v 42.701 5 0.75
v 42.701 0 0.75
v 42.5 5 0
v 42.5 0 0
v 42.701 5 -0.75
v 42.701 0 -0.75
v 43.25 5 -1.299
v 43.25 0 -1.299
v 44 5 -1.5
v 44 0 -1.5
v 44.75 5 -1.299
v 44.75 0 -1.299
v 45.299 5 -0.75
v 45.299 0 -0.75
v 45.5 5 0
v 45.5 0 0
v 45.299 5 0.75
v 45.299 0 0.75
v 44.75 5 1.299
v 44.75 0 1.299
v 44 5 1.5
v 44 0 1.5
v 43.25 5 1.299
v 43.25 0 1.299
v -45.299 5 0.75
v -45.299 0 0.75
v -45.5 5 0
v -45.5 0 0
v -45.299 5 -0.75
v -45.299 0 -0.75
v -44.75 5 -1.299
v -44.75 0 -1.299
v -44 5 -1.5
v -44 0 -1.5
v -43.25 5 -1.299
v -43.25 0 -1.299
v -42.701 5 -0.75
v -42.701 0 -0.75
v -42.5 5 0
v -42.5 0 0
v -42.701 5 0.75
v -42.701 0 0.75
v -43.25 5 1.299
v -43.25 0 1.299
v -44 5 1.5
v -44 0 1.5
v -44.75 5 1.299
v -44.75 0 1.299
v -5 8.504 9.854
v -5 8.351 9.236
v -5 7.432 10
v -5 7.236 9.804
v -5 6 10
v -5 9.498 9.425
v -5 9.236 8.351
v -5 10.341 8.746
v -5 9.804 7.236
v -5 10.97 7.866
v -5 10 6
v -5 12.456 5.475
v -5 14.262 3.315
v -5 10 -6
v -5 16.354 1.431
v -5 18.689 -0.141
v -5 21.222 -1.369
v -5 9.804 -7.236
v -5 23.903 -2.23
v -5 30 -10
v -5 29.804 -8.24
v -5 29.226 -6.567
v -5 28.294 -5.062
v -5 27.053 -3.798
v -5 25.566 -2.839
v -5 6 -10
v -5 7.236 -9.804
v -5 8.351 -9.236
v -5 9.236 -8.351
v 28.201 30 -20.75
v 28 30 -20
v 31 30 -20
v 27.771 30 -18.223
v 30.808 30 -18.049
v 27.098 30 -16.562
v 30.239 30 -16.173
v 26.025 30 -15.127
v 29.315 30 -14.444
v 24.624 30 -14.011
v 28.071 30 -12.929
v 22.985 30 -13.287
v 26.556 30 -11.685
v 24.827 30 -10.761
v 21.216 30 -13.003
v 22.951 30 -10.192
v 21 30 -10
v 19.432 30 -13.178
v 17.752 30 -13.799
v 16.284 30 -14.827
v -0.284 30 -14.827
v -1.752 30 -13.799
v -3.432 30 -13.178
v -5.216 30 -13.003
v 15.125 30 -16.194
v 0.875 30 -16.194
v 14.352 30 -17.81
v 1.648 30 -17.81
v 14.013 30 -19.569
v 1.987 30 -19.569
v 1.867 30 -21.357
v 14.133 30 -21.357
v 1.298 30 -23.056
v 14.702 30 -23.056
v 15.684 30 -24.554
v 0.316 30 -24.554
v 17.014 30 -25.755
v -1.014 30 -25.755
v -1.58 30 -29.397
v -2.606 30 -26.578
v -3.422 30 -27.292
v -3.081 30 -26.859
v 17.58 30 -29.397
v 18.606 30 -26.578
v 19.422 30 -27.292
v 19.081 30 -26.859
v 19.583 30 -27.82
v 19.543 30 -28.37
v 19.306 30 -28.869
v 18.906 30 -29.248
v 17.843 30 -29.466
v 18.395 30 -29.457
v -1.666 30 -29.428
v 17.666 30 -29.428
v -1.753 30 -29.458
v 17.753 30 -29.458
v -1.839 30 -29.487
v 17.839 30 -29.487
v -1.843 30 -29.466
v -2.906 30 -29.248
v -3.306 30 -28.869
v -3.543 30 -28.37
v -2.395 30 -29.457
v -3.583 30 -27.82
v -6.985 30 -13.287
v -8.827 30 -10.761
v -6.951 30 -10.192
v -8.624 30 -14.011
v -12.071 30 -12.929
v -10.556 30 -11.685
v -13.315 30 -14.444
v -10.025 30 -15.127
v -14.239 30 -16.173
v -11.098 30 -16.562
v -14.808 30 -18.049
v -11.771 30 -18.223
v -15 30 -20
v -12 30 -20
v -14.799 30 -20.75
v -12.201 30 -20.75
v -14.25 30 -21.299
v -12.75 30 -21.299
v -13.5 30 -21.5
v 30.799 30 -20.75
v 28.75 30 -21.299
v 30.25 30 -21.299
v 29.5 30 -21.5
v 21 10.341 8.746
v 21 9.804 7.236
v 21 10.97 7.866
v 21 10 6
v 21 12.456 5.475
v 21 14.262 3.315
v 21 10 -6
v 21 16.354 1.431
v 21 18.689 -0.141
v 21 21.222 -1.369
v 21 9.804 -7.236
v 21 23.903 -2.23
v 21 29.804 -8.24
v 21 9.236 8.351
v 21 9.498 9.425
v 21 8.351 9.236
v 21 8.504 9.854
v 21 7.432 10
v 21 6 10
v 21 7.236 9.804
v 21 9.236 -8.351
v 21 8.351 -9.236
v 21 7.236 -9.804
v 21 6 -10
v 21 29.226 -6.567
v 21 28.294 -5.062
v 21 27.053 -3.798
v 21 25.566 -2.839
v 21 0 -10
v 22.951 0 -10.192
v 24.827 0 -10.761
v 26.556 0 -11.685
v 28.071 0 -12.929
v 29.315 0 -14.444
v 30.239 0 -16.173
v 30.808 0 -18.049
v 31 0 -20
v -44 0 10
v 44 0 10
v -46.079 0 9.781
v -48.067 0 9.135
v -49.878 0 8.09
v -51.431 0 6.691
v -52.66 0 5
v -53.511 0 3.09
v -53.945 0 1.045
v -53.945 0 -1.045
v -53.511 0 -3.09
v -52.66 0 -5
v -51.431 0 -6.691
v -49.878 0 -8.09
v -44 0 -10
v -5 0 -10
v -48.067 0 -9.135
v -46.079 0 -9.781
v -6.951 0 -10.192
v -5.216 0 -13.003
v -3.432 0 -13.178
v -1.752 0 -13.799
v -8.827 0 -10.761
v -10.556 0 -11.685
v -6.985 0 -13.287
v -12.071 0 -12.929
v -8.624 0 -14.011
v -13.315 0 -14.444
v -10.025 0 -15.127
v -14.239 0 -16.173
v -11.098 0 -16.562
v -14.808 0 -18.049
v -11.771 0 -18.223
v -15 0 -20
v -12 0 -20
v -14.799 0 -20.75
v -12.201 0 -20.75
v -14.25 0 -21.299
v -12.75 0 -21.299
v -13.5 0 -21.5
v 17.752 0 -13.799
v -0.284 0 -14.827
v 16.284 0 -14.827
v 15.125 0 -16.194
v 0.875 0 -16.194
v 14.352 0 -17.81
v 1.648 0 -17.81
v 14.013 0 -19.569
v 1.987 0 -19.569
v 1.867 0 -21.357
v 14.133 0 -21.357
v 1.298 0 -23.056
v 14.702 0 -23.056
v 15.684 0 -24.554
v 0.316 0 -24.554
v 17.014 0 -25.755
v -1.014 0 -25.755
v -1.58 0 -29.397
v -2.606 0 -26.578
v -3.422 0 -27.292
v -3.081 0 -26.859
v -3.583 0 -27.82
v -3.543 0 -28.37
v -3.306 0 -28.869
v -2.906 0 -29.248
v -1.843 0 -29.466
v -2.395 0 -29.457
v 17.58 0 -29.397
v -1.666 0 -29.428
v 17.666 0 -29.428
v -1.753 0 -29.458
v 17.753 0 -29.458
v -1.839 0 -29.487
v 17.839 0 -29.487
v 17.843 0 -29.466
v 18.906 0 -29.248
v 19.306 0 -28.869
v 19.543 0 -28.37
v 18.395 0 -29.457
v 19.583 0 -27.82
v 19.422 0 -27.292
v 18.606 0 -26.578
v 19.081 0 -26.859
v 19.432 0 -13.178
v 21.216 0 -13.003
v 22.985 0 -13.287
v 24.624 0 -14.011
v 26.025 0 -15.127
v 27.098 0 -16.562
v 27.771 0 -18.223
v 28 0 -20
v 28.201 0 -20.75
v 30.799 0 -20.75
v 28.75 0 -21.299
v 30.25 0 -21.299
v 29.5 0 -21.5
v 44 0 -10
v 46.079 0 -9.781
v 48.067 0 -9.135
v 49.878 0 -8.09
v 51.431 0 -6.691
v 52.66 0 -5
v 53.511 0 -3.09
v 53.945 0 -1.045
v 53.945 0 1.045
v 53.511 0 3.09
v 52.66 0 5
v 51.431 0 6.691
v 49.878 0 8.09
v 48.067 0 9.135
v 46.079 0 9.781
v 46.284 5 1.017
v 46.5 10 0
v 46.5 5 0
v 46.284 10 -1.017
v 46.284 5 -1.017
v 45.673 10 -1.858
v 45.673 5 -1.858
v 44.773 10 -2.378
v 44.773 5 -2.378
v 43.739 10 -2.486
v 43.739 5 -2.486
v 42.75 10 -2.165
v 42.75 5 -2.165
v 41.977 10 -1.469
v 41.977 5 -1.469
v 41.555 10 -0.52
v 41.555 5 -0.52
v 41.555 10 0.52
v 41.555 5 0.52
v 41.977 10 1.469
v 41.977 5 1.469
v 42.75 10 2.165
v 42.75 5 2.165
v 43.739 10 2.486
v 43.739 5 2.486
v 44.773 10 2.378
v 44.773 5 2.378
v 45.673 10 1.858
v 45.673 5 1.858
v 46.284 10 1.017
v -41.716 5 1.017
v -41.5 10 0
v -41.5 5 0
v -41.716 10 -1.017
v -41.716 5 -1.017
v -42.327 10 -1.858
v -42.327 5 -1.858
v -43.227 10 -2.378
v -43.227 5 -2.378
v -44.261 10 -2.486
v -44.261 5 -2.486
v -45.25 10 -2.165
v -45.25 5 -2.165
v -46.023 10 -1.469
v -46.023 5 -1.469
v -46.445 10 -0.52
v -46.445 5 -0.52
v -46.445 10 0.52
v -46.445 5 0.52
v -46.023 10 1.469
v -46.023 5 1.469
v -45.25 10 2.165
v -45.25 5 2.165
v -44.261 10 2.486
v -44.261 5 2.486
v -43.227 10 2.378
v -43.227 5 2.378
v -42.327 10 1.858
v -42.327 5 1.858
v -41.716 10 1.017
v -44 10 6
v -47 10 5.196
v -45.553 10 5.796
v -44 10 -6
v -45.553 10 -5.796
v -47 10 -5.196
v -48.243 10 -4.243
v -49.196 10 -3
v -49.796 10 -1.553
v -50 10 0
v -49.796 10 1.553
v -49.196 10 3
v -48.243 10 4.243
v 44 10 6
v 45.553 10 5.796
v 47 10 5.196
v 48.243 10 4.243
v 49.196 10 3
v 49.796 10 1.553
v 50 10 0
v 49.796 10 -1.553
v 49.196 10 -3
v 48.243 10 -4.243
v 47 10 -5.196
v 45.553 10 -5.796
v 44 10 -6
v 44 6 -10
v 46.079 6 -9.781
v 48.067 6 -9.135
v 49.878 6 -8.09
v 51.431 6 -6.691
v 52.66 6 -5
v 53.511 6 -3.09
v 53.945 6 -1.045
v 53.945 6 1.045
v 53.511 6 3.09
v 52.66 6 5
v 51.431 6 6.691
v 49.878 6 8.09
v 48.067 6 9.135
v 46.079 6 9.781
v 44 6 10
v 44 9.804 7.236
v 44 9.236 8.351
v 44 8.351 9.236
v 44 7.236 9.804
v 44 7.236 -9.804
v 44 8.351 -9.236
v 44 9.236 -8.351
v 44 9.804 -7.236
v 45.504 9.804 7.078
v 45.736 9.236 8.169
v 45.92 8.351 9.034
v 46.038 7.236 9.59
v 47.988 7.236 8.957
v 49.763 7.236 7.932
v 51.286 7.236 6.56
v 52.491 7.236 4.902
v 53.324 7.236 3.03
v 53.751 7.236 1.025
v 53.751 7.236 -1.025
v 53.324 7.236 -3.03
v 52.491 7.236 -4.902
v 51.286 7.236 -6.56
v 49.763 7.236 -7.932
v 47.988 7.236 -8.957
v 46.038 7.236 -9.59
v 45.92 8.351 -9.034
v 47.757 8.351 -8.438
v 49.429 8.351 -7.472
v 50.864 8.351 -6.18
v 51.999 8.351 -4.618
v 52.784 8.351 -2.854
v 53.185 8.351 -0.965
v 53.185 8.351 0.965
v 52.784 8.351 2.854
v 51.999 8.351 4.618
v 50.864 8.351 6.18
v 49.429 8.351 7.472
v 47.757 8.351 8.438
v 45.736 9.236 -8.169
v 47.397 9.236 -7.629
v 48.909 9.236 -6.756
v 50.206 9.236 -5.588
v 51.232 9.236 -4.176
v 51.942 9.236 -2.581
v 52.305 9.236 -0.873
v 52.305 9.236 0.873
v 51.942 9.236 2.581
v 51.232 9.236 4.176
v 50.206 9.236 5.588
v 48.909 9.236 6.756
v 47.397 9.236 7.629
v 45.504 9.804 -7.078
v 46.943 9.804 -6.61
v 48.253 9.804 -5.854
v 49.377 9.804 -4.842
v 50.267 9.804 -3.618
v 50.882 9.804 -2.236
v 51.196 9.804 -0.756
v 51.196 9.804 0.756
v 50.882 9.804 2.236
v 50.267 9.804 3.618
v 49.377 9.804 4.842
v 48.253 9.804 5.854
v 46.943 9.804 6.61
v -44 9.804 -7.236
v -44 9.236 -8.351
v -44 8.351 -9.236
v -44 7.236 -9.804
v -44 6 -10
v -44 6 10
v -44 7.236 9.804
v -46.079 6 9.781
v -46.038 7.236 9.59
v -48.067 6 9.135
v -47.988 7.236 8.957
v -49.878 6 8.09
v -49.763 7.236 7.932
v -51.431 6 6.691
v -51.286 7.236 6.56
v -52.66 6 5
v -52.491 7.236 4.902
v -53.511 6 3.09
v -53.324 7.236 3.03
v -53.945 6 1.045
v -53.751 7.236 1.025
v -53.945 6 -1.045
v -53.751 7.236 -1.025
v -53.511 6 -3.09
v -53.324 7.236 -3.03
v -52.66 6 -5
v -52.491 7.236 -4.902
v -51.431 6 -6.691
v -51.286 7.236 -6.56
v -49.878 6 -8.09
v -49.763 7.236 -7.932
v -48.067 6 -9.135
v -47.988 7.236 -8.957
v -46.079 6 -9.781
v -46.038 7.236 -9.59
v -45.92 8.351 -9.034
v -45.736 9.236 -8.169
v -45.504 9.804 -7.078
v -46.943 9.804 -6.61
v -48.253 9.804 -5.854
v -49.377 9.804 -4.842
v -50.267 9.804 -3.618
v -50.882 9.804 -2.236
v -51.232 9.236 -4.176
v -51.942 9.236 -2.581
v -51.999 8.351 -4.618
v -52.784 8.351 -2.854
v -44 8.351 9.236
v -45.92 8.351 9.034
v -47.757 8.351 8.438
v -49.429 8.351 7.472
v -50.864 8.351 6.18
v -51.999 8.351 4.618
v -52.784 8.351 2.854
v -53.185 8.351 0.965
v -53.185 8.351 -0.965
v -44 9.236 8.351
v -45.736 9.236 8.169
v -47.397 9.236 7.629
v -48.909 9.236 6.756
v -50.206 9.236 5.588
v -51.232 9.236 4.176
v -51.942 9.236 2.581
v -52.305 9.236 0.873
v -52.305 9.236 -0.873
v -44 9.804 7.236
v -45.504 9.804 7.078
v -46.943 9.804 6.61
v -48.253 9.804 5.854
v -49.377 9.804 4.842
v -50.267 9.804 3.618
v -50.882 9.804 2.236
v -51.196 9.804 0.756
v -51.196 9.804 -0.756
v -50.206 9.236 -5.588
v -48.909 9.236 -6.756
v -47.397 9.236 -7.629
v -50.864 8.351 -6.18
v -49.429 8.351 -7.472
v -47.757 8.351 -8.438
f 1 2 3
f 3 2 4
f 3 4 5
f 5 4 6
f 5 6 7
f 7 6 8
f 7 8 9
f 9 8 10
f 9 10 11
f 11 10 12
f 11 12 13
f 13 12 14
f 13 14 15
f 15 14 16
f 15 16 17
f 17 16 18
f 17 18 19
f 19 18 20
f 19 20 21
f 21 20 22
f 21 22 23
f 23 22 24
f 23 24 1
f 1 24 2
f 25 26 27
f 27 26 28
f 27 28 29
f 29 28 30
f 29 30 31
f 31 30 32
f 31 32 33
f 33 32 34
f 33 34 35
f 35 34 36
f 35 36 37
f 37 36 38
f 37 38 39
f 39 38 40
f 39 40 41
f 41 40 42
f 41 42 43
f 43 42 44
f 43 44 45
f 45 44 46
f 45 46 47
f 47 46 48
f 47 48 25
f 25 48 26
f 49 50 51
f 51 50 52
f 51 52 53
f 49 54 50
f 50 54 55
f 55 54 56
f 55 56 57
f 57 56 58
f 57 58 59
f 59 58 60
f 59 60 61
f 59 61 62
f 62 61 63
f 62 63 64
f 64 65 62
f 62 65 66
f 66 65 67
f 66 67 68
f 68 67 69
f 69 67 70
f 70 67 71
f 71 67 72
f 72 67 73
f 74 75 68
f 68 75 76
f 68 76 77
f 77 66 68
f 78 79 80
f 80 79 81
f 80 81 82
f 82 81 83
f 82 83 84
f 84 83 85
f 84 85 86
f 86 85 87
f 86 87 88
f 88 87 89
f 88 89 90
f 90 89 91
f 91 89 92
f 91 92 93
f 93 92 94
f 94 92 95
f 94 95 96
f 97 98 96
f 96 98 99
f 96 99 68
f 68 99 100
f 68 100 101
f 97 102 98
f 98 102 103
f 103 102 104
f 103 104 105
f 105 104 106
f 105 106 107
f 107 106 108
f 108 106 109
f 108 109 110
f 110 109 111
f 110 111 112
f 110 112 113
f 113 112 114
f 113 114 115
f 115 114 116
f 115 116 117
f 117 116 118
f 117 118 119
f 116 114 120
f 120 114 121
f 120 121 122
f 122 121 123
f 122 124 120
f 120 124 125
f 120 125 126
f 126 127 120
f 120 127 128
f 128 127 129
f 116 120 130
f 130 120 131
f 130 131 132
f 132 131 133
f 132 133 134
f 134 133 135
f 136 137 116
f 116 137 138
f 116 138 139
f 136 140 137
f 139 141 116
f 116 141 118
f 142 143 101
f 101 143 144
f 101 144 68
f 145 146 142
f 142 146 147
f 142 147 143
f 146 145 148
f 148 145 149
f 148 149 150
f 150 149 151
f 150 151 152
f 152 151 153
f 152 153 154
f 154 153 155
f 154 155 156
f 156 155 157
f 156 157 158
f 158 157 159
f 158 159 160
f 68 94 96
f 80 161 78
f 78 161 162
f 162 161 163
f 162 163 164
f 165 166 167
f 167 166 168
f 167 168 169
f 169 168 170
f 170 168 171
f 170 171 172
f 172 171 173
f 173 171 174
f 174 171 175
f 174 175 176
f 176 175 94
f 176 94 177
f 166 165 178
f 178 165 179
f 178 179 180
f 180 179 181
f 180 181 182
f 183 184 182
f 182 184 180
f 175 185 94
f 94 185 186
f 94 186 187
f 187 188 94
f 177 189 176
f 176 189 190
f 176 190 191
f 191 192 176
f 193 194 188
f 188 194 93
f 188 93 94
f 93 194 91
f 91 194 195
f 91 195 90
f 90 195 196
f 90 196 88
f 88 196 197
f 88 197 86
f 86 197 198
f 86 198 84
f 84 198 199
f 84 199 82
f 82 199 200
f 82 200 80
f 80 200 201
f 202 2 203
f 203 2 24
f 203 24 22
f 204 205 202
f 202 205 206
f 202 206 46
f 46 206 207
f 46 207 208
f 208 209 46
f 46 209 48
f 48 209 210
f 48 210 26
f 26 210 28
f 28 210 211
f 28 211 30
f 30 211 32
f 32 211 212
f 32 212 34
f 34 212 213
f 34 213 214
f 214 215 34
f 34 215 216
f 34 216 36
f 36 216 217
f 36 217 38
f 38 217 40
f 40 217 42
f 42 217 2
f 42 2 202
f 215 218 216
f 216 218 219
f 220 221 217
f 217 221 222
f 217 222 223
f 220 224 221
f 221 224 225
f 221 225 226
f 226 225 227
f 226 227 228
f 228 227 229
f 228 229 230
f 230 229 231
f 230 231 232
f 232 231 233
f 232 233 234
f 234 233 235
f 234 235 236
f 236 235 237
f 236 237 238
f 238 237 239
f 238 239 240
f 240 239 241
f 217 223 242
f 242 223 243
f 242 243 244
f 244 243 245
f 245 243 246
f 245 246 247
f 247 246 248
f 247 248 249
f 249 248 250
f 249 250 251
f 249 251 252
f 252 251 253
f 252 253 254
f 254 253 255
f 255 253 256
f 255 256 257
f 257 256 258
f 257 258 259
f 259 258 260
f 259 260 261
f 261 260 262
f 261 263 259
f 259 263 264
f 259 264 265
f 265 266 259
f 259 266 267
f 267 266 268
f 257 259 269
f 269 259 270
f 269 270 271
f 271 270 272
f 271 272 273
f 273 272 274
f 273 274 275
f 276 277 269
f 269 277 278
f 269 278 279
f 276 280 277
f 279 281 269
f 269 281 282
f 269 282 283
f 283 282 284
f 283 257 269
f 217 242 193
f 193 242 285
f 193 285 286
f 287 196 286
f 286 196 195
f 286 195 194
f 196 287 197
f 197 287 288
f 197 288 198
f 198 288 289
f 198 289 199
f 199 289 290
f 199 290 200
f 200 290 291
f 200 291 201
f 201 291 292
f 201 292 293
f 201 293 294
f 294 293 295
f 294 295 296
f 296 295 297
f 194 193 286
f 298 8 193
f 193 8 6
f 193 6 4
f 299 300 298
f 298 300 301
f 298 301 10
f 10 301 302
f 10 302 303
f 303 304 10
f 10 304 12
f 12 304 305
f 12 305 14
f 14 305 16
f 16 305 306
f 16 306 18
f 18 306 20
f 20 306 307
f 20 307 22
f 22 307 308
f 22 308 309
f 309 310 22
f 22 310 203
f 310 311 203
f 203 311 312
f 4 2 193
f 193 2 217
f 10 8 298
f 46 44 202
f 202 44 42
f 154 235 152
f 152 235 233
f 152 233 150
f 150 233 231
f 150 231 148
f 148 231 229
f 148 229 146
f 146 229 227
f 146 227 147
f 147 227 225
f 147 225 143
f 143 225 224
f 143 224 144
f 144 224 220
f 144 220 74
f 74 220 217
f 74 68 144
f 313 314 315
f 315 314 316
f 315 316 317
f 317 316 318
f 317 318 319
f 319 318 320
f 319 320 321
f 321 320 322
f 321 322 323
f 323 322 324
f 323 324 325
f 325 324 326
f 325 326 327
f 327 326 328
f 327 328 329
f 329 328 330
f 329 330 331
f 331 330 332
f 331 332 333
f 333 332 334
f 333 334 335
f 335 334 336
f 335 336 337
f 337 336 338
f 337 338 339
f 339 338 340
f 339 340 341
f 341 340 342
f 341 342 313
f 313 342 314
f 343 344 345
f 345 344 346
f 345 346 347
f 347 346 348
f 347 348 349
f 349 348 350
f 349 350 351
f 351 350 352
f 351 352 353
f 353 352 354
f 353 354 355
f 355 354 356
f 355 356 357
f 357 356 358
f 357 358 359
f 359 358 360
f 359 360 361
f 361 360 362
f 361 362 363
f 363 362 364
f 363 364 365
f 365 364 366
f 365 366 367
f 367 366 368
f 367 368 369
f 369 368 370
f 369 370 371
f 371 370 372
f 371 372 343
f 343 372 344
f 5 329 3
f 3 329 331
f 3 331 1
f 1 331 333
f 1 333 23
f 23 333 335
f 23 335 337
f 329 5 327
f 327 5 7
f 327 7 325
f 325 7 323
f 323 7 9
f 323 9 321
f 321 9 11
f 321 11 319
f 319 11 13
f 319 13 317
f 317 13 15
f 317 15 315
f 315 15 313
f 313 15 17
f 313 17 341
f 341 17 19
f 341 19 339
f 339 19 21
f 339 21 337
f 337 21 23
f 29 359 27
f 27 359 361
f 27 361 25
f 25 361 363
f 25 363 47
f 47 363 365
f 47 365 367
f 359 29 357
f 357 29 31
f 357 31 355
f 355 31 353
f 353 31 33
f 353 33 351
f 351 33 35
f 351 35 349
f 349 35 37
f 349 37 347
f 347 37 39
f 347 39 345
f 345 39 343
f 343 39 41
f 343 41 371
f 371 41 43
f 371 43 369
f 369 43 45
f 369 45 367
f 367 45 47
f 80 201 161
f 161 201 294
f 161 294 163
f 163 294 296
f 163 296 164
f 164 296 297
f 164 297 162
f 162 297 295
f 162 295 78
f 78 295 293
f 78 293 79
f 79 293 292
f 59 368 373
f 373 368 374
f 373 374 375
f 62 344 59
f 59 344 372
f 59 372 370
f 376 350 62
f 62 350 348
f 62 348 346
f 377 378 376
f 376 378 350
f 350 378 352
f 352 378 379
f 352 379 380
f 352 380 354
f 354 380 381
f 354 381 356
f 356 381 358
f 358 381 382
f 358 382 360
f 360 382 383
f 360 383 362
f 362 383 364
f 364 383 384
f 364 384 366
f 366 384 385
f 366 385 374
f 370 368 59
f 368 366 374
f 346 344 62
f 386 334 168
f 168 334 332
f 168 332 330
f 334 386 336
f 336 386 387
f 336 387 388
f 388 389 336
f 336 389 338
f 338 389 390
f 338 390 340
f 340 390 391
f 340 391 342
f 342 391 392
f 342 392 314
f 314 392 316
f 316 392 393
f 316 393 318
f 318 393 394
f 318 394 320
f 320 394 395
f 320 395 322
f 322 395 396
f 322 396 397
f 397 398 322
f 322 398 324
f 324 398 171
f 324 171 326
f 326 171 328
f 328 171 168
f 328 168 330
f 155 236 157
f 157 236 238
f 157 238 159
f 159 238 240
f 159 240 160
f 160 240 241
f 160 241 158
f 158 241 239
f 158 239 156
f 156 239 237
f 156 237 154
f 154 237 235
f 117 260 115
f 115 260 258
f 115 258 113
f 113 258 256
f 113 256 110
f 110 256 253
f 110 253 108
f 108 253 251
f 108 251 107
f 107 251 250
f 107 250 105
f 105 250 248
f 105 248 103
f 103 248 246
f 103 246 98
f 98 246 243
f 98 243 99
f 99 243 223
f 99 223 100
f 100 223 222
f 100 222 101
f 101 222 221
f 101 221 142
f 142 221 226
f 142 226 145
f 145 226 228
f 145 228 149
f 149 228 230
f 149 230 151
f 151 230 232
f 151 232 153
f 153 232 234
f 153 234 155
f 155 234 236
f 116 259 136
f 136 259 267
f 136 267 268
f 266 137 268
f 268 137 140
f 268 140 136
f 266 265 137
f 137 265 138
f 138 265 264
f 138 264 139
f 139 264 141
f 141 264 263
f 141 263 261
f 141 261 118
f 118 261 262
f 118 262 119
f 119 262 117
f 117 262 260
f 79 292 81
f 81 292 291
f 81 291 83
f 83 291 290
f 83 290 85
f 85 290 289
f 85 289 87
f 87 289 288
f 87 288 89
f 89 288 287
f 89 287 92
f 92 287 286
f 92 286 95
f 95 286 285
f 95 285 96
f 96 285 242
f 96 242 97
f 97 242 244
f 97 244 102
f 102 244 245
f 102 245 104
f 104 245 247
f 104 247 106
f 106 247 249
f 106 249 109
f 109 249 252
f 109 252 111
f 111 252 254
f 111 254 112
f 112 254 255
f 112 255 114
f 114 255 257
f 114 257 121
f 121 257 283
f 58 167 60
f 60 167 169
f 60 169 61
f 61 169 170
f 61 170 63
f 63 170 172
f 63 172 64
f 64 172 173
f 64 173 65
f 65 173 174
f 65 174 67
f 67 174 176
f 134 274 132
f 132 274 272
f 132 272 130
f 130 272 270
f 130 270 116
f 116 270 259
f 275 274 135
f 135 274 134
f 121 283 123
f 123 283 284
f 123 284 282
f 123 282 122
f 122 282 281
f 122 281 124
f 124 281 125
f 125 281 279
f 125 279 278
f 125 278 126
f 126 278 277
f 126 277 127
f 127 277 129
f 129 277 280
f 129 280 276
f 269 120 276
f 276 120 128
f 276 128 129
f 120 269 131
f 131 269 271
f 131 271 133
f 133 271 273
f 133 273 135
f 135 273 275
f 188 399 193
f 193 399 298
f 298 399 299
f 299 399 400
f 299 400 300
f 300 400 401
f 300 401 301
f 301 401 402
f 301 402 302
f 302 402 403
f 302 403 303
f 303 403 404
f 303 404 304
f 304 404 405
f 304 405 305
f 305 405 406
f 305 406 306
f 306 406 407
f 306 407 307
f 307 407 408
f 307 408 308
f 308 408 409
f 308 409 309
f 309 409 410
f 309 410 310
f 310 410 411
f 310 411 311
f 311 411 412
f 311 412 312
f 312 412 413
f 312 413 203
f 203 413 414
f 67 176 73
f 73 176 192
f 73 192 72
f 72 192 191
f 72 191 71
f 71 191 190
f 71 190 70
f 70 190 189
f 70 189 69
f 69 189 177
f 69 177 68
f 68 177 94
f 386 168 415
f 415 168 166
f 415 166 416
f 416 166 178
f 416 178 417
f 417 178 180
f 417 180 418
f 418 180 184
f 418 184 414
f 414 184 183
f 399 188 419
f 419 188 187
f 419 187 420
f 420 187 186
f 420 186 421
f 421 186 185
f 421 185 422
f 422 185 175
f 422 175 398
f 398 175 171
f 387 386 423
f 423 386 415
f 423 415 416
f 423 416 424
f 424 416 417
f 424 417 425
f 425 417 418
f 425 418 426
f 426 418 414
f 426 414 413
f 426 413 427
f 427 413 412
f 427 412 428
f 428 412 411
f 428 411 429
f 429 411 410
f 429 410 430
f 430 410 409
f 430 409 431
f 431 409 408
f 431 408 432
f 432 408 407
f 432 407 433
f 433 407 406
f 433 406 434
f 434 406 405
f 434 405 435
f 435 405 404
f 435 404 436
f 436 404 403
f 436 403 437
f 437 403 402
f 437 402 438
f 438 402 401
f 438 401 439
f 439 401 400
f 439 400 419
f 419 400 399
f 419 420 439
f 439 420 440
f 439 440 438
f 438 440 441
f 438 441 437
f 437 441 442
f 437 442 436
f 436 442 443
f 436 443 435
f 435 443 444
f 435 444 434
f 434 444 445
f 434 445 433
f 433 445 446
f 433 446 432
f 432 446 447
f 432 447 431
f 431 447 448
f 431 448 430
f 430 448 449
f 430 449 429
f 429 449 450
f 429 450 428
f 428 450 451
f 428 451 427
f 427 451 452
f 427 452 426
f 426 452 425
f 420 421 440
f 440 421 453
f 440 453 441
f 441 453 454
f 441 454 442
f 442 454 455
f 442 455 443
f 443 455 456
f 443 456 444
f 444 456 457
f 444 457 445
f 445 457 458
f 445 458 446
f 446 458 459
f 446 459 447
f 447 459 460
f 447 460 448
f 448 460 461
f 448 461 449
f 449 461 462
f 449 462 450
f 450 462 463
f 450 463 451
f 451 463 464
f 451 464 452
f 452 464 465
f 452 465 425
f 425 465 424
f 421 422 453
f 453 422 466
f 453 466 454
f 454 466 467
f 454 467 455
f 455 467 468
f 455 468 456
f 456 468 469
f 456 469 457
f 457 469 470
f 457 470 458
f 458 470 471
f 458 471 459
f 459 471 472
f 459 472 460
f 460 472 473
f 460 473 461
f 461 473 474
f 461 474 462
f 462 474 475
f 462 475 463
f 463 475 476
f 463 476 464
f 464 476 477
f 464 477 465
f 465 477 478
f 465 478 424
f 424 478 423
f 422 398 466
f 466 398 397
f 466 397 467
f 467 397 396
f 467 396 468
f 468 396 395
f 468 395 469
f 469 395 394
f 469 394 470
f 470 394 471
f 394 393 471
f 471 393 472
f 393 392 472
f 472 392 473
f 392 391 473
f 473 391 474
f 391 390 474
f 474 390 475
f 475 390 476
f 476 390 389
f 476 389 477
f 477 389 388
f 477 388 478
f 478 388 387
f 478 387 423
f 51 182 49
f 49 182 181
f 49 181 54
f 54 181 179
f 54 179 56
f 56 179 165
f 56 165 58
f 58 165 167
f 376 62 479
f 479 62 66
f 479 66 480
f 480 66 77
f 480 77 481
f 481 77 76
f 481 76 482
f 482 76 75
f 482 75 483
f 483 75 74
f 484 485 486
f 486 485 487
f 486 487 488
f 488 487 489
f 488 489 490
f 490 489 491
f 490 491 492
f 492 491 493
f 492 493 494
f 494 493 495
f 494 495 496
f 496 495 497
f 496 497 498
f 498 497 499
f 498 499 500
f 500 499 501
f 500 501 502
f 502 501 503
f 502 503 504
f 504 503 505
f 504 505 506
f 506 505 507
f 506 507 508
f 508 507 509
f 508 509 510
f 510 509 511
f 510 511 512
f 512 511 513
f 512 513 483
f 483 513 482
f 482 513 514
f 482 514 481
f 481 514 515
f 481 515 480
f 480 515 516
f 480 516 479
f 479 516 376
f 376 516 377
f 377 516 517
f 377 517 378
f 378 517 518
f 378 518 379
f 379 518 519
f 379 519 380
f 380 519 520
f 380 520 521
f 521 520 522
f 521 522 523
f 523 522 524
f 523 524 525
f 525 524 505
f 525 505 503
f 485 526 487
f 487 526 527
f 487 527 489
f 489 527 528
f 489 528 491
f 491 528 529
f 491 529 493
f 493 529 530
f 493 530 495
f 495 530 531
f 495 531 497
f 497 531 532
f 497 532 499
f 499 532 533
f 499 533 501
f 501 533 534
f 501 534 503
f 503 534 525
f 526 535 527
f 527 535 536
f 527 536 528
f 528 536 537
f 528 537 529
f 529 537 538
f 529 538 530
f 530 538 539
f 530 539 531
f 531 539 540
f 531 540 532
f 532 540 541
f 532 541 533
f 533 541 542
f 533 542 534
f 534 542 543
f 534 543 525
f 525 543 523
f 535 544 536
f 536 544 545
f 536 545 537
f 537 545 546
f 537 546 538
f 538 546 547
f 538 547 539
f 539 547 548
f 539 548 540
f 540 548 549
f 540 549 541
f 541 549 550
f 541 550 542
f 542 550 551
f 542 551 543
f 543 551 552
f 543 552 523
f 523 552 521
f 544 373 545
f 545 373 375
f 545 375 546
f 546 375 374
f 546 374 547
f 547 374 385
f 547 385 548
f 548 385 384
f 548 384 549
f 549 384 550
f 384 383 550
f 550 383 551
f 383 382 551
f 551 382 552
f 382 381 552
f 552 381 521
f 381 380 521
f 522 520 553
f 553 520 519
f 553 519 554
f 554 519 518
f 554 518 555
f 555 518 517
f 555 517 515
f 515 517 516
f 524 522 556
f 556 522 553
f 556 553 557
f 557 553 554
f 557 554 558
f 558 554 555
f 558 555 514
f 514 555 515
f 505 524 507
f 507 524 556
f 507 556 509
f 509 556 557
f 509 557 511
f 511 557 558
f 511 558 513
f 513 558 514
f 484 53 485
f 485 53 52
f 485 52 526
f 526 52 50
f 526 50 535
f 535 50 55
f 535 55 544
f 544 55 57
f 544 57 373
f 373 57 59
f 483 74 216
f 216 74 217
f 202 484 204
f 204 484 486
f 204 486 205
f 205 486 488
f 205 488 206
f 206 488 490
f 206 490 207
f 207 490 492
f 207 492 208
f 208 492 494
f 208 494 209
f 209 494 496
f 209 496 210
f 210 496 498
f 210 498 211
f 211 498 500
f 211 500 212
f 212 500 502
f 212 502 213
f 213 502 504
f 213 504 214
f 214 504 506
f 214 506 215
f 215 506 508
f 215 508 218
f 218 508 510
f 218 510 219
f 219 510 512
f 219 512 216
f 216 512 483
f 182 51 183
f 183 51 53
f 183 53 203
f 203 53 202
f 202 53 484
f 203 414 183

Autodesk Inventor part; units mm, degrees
ref_plane "XZ Plane" through (0, 0, 0) normal (0, 1, 0) x (-1, 0, 0)
ref_plane "XY Plane" through (0, 0, 0) normal (0, 0, 1) x (1, 0, 0)
sketch "스케치1" plane through (0, 0, 0) normal (0, 1, 0) x (-1, 0, 0)
  line L0 (0, -14) -> (0, 14) projected
  line L1 (75.6, 0) -> (-75.6, 0) projected
  circle A0 centre (44, 0) radius 1.5
  circle A1 centre (44, 0) radius 10
  line L2 (44, -10) -> (0, -10)
  line L3 (44, 10) -> (0, 10)
  circle A2 centre (-44, 0) radius 1.5
  circle A3 centre (-44, 0) radius 10
  line L4 (-44, -10) -> (0, -10)
  line L5 (-44, 10) -> (0, 10)
  point P0 (0, 0)
  dimension "d0" = 3
  dimension "d1" = 20
  dimension "d2" = 44
extrude "돌출1" add sketch "스케치1" along normal blind 10 contours L4 A3 L1 L0 | L0 L1 A1 L2 | L1 A3 L5 L0 | L0 L3 A1 L1 | A1 L1 A0 | A3 L1 A2 | A1 L1 A0 | L1 A2 A3
sketch "스케치2" plane through (0, 10, 0) normal (0, 1, 0) x (1, 0, 0)
  circle A0 centre (-44, 0) radius 1.5 projected
  circle A1 centre (44, 0) radius 1.5 projected
  circle A2 centre (-44, 0) radius 2.5
  circle A3 centre (44, 0) radius 2.5
  point P0 (0, 0)
  dimension "d5" = 5
  dimension "d6" = 5
extrude "돌출2" cut sketch "스케치2" against normal blind 5 contours A0 | A1 | A2 | A3
sketch "스케치3" plane through (0, 0, 0) normal (0, -1, 0) x (1, 0, 0)
  line L0 (8, -34.5901) -> (8, 10)
  circle A0 centre (44, 0) radius 1.5 projected
  line L1 (-44, 10) -> (44, 10) projected
  circle A1 centre (21, -20) radius 7
  line L2 (44, -10) -> (-44, -10) projected
  circle A2 centre (21, -20) radius 10
  line L3 (21, -20) -> (11, -20)
  line L4 (21, -20) -> (17.5798, -29.3969)
  line L5 (21, -20) -> (31, -20) construction
  circle A3 centre (18.0928, -27.9874) radius 1.5
  circle A4 centre (29.5, -20) radius 1.5
  line L6 (18.0928, -29.4874) -> (8, -29.4874)
  circle A5 centre (-5, -20) radius 7
  circle A6 centre (-5, -20) radius 10
  circle A7 centre (-2.0928, -27.9874) radius 1.5
  circle A8 centre (-13.5, -20) radius 1.5
  line L7 (-2.0928, -29.4874) -> (8, -29.4874)
  point P0 (0, 0)
  point P1 (18.6059, -26.5778)
  point P2 (28, -20)
  point P3 (21, -10)
  point P4 (-5, -10)
  point P5 (-15, -20)
  point P6 (-12, -20)
  point P7 (-2.6059, -26.5778)
  point P8 (-1.5798, -29.3969)
  point P9 (-1.8394, -29.4874)
  point P10 (17.8394, -29.4874)
  dimension "d9" = 36
  dimension "d10" = 14
  dimension "d11" = 10
  dimension "d12" = 13
  dimension "d13" = 110
extrude "돌출3" add sketch "스케치3" against normal blind 30 contours L7 A6 L2 L0 | L0 L2 A2 L6 | A2 A4 A1 L3 | A6 A7 A5 A8 | A3 L4 | L4 A3 | A2 L3 A1 A3 | A4 | A8 | A7
ref_plane "작업 평면1" through (21, 10, -10) normal (1, 0, 0) x (0, 1, 0)
sketch "스케치4" plane through (21, 10, -10) normal (1, 0, 0) x (0, 1, 0)
  line L0 (20, -10) -> (20, 0) projected
  arc A0 (20, 0) -> (13.903, 7.7704) centre (12, 0) ccw
  arc A1 (0, 20) -> (13.903, 7.7704) centre (18.6605, 27.1963) ccw
  line L1 (20, -3) -> (20, -16.5778) projected
  line L2 (0, 0) -> (20, 0) projected
  line L3 (0, 12.5) -> (0, 7.5) projected
  line L4 (0, 12.5) -> (0, 7.5) projected
  line L5 (0, 20) -> (0, 0) projected
  line L6 (0, 0) -> (0, 20) projected
  point P0 (-10, 10)
  dimension "d16" = 8
  dimension "d17" = 20
extrude "돌출4" add sketch "스케치4" against normal blind 26
fillet "모깎기1" radius 4 1 edges at (-24.5, 10, 10)
fillet_without_effect "모깎기2"
properties part number "카메라 하단"
